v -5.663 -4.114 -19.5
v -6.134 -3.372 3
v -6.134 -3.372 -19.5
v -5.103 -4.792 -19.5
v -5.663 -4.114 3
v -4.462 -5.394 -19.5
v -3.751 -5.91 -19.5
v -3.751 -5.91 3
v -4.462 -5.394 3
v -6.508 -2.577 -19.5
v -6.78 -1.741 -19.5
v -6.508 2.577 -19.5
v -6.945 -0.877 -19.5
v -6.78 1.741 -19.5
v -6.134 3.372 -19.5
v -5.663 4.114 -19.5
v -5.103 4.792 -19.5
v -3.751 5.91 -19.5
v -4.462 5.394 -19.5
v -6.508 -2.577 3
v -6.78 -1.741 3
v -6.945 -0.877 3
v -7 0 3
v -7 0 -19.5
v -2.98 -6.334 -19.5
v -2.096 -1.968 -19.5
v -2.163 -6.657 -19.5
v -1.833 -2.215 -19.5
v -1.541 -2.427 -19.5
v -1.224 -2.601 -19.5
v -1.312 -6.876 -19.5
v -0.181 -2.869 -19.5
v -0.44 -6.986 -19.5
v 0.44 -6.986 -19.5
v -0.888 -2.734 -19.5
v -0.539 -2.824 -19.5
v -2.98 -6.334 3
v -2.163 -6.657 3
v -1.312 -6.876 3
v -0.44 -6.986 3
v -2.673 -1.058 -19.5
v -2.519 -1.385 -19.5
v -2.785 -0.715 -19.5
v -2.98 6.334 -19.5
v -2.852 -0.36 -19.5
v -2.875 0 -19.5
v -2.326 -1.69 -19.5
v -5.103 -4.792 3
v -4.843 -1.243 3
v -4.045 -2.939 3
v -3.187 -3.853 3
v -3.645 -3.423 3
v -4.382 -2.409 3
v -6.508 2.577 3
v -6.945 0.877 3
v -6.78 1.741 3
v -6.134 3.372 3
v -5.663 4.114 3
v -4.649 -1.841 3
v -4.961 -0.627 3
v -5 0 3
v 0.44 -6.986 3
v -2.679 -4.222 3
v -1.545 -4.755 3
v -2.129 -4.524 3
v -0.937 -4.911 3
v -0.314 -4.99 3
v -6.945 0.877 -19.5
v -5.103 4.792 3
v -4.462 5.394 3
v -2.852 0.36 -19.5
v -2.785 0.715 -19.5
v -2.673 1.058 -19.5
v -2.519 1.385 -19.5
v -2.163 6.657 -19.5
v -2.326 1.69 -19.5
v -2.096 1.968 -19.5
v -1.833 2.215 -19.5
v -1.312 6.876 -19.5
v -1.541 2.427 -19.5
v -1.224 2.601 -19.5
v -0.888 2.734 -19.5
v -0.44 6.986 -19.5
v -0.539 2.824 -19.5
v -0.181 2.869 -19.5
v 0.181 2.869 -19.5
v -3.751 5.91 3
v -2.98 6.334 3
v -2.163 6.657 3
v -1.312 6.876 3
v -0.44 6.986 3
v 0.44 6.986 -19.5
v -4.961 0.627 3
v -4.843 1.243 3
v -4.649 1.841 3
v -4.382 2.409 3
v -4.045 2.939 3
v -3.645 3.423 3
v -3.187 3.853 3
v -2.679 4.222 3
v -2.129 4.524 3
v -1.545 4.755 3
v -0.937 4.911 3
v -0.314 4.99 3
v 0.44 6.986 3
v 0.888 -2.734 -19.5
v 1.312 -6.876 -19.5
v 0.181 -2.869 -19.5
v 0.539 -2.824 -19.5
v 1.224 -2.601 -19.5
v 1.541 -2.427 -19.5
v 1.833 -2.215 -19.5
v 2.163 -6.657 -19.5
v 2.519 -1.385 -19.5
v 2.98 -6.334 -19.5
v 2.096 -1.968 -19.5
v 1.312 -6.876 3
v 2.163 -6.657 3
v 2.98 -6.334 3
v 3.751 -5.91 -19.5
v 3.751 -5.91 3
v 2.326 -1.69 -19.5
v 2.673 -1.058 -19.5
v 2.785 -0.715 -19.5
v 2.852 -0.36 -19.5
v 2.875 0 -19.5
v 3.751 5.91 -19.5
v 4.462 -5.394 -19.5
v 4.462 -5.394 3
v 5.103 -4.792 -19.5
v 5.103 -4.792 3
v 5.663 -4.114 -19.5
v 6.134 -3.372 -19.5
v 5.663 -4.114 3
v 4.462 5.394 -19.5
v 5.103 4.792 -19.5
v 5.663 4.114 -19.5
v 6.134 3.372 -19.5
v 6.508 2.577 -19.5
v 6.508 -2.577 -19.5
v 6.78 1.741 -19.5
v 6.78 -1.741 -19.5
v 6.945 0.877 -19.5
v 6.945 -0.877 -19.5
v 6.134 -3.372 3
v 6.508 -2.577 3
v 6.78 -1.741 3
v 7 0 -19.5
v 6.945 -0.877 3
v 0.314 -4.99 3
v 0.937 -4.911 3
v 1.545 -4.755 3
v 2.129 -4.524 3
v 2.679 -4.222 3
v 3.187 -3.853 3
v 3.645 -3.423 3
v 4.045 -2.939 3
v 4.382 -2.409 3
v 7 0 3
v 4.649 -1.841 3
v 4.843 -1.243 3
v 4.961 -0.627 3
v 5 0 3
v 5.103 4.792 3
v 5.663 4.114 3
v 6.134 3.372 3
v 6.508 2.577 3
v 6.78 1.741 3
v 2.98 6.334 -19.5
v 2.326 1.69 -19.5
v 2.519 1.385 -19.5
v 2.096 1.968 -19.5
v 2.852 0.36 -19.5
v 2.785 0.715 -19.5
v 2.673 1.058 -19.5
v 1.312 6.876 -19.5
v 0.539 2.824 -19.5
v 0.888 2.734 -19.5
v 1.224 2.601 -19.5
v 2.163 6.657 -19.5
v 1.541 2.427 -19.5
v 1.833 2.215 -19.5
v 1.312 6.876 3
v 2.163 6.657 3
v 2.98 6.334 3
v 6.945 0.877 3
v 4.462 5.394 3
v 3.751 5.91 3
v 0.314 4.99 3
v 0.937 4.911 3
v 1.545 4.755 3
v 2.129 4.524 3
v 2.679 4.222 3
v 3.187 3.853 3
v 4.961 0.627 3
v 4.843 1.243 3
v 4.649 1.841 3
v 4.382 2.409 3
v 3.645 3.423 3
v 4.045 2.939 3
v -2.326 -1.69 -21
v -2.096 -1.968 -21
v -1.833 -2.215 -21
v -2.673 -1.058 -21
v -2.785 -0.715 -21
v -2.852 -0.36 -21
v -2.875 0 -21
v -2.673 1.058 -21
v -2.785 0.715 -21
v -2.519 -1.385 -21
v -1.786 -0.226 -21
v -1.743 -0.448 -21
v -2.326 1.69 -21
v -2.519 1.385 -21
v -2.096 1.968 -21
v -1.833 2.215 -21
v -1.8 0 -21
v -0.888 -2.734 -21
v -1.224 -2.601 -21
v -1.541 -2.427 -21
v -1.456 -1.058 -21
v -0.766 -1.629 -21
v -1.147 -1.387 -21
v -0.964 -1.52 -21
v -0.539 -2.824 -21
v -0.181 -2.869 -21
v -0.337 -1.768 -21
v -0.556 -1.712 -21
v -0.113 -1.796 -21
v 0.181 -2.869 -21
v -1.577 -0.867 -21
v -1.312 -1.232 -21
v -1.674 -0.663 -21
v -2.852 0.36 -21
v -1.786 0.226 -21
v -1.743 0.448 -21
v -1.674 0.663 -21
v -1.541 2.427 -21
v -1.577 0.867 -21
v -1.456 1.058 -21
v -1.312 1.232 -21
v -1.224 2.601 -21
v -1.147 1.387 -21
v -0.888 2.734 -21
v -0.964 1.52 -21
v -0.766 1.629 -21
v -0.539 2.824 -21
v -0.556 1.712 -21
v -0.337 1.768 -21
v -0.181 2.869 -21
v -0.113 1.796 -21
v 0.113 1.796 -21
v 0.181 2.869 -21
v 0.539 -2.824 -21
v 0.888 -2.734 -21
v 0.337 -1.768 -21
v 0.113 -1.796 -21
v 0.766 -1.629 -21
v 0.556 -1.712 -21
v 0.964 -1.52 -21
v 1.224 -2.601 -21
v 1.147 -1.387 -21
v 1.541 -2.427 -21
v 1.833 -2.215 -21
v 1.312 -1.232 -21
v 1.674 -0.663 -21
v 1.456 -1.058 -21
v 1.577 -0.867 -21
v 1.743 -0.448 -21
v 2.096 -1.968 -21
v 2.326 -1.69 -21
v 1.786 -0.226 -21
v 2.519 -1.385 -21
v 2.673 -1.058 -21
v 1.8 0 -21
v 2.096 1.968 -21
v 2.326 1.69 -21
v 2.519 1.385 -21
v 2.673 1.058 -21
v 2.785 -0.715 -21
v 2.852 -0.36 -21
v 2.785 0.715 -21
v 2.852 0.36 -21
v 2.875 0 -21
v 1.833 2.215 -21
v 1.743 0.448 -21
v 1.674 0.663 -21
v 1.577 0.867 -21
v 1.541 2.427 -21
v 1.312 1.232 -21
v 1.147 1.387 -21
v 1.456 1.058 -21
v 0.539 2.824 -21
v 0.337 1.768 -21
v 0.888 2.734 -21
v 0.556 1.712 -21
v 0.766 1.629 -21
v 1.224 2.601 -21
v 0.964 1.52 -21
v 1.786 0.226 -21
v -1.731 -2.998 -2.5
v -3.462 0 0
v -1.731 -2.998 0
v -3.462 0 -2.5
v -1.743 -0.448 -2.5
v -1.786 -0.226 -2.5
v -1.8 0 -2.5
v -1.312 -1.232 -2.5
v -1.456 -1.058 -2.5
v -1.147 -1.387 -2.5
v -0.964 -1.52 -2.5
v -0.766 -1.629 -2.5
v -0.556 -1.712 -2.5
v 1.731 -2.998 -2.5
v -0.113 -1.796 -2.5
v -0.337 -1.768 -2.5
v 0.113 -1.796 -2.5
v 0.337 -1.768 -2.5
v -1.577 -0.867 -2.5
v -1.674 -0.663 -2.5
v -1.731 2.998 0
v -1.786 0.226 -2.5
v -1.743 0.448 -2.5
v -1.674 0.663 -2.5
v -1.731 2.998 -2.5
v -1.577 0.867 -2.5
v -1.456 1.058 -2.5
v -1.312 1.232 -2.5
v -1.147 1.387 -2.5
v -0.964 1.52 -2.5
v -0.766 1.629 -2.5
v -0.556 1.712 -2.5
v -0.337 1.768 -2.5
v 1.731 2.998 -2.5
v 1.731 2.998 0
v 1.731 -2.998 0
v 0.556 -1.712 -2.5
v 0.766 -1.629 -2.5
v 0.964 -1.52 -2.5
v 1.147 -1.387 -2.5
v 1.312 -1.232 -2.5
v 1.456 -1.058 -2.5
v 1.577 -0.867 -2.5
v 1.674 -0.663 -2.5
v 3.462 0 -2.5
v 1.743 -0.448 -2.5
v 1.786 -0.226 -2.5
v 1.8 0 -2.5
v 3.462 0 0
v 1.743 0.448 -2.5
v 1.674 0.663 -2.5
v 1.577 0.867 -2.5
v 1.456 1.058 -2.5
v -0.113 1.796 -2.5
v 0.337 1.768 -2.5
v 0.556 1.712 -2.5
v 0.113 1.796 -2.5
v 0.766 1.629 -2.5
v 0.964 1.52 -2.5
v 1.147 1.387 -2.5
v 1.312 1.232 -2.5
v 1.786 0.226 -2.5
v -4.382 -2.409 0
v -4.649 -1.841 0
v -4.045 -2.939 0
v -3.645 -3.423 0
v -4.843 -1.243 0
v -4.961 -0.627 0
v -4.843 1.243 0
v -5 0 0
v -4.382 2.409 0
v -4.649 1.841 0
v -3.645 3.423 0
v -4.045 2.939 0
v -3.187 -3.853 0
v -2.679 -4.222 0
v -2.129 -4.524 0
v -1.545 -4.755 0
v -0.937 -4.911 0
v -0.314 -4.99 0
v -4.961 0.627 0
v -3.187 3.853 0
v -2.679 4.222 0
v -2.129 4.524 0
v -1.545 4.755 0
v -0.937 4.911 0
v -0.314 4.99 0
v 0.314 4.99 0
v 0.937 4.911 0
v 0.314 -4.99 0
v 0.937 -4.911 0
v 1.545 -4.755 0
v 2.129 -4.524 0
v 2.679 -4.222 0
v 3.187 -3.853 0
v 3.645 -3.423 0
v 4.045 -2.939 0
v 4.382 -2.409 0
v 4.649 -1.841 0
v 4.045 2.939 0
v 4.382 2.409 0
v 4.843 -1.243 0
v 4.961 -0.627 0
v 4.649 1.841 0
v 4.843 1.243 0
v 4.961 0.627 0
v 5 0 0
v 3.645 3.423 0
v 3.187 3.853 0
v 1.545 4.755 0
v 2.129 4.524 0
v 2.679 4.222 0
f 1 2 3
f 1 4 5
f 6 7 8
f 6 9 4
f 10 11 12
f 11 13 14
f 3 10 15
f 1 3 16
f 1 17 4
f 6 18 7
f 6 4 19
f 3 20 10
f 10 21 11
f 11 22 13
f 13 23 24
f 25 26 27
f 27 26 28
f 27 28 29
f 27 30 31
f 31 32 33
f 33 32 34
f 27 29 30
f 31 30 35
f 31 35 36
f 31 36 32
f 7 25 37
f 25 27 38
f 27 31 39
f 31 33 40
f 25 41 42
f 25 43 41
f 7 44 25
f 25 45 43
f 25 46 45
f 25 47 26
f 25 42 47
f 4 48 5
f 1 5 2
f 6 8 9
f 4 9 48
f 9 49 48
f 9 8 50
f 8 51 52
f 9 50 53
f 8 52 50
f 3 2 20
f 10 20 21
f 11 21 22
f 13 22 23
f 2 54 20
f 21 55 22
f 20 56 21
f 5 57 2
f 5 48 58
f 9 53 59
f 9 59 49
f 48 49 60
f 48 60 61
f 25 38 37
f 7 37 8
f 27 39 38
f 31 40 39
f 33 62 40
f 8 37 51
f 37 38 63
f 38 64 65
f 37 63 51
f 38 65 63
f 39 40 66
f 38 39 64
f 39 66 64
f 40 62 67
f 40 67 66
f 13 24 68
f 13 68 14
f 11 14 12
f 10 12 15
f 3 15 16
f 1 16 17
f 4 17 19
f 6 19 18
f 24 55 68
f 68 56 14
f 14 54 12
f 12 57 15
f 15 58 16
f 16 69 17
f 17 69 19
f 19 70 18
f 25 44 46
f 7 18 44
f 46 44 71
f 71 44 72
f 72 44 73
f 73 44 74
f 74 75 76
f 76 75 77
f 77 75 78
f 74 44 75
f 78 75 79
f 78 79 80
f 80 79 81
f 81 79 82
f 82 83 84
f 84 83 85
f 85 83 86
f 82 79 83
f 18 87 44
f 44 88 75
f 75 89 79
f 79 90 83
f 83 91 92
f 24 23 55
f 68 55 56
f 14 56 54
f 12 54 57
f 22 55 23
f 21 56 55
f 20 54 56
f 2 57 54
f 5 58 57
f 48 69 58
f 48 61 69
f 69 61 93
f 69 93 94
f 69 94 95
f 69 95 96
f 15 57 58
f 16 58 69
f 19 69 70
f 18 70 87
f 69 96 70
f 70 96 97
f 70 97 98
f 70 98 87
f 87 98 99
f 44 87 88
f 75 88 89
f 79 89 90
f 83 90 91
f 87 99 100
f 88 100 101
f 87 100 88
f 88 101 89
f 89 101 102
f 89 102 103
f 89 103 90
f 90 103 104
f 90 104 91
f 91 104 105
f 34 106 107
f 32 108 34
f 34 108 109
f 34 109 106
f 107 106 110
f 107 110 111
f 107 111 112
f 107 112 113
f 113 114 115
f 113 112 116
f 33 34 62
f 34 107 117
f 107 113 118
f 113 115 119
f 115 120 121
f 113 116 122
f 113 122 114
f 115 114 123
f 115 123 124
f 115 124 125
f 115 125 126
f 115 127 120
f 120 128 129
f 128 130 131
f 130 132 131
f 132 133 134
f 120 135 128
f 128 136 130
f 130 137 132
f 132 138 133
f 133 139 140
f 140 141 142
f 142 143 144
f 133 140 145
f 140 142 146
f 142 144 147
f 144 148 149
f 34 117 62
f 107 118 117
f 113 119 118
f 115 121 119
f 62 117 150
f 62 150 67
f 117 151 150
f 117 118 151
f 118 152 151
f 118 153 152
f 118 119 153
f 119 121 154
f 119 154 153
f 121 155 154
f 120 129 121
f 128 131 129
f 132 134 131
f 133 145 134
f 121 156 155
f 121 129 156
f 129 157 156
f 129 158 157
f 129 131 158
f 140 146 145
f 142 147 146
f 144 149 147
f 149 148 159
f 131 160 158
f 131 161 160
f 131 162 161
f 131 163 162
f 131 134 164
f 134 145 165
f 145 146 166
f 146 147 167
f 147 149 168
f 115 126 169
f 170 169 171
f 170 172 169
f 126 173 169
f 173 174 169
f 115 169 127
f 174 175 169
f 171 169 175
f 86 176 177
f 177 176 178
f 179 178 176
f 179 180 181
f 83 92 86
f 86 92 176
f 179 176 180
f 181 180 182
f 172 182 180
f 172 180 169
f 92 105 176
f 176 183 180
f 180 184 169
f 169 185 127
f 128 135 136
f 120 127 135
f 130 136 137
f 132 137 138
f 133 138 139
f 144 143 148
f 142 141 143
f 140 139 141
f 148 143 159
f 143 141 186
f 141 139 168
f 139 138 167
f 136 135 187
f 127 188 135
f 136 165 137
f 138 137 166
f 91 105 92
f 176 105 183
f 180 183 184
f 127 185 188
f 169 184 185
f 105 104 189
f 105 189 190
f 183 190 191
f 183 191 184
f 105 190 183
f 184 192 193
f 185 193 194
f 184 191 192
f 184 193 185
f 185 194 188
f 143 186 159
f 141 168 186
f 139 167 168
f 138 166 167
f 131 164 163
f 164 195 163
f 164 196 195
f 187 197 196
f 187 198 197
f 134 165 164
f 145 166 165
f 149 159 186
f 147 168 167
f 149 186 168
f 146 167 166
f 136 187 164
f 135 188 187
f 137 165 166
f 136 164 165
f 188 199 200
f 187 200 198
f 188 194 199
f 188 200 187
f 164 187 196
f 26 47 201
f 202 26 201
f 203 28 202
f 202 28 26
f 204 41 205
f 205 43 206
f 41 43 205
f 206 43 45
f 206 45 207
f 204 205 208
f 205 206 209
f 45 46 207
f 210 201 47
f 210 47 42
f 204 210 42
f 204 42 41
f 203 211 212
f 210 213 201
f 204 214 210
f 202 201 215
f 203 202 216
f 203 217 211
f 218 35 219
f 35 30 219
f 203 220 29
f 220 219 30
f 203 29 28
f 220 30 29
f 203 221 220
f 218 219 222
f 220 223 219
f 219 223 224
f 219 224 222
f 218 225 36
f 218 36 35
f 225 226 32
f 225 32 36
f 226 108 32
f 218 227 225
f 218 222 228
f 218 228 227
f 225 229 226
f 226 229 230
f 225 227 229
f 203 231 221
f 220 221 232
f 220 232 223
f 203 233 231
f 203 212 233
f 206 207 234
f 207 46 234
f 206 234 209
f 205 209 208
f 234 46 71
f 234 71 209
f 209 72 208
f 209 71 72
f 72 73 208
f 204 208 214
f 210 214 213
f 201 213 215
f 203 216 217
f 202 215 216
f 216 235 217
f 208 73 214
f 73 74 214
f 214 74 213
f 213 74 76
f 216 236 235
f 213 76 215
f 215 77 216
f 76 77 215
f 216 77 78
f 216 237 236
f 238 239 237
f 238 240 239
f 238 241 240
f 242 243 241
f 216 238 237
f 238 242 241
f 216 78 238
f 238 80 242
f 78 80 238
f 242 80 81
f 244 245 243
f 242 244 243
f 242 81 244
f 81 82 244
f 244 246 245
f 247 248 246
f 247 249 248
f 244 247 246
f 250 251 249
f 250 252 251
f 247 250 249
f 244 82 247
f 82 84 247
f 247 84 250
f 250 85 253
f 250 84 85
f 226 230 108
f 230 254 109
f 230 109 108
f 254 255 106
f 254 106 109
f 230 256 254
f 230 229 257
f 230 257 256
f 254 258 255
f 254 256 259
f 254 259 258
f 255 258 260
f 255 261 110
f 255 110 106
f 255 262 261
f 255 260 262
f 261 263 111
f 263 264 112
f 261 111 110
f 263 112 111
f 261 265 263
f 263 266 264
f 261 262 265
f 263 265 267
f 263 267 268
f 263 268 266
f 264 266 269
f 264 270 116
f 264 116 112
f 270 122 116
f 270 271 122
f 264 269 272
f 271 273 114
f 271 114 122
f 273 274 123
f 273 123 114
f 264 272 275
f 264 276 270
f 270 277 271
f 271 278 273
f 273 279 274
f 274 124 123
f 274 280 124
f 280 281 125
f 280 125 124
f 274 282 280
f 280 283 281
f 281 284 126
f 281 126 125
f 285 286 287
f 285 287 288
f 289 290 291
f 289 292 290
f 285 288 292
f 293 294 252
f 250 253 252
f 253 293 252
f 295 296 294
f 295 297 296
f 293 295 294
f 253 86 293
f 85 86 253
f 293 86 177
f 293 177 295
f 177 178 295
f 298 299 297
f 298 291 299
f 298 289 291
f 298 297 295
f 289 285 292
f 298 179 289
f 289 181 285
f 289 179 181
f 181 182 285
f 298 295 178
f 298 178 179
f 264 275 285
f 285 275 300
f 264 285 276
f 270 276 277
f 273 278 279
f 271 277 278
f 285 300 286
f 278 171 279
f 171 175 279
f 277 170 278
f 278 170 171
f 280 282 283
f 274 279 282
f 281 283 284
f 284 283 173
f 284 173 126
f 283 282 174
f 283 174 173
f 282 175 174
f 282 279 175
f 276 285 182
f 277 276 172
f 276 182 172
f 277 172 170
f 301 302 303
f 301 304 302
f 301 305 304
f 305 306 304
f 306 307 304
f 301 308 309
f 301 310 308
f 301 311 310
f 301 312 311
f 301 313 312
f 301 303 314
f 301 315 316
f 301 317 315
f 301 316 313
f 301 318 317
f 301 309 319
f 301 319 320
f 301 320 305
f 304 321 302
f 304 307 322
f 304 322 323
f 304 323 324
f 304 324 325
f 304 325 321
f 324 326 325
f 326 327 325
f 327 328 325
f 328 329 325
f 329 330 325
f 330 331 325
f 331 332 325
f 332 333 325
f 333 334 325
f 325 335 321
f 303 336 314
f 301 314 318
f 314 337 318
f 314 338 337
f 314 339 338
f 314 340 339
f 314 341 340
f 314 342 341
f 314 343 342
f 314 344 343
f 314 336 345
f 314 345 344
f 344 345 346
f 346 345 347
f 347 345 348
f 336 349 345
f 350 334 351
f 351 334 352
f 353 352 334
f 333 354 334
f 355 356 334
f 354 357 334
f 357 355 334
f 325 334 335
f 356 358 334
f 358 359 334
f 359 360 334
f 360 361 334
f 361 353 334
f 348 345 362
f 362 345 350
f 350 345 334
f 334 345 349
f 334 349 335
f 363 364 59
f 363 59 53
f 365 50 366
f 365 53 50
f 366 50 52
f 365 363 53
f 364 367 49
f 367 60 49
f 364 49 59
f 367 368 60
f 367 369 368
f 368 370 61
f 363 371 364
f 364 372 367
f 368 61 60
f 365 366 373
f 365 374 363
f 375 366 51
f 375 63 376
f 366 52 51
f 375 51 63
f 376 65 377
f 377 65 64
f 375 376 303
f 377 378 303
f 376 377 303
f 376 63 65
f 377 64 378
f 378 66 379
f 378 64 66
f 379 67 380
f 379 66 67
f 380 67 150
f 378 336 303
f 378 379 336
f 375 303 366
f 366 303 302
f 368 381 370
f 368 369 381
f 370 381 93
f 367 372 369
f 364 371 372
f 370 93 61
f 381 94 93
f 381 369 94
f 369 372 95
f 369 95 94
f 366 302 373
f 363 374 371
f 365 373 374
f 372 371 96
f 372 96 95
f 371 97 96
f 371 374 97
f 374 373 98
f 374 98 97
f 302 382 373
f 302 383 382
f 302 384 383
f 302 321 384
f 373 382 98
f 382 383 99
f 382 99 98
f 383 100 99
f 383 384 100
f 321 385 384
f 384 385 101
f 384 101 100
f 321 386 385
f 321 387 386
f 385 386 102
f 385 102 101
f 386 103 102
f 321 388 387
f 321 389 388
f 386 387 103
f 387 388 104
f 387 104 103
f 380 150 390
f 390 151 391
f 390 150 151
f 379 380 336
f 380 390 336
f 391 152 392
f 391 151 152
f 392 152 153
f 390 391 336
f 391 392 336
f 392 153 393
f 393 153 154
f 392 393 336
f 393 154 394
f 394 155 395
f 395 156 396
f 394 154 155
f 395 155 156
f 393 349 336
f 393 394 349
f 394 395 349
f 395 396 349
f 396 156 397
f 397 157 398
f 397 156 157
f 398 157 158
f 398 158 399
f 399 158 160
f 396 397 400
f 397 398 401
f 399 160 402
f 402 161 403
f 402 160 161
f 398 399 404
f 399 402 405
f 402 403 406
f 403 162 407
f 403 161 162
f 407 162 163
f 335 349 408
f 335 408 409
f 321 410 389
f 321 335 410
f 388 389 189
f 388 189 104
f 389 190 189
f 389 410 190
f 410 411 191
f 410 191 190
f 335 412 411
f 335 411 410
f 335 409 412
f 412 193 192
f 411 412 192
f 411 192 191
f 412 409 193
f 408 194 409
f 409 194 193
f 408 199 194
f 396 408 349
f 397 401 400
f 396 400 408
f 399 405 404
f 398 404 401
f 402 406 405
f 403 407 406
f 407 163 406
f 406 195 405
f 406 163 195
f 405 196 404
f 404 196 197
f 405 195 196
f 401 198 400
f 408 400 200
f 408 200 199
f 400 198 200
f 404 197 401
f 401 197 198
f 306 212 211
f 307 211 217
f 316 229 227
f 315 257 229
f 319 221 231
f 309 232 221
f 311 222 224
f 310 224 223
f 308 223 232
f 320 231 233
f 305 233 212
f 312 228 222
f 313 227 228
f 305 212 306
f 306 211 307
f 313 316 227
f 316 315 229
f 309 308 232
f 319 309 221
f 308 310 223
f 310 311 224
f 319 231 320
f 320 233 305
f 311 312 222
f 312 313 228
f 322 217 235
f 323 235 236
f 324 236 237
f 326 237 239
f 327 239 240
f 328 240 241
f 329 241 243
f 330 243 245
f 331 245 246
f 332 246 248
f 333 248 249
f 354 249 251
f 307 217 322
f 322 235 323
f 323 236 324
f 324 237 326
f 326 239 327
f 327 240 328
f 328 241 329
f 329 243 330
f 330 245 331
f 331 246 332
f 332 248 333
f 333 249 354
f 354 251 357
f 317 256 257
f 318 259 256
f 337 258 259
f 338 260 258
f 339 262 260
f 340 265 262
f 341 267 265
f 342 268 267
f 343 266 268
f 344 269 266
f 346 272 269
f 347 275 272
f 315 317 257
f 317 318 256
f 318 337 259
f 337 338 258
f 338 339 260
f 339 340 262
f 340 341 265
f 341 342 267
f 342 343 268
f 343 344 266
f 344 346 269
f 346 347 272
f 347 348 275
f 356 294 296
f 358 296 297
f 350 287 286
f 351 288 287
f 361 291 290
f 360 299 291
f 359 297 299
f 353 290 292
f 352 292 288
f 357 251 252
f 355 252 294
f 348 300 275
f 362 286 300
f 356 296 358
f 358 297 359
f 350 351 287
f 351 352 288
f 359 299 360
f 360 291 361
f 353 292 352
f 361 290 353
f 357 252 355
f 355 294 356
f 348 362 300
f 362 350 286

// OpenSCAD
$fn = 50;


difference() {
	union() {
		translate(v = [0, 0, -19.5000000000]) {
			cylinder(h = 22.5000000000, r = 7.0000000000);
		}
		#translate(v = [0, 0, -21.0000000000]) {
			cylinder(h = 21, r = 2.8750000000);
		}
	}
	union() {
		translate(v = [0, 0, 0]) {
			rotate(a = [0, 0, 0]) {
				difference() {
					union() {
						translate(v = [0, 0, -2.5000000000]) {
							linear_extrude(height = 2.5000000000) {
								polygon(points = [[3.4620000000, 0.0000000000], [1.7310000000, 2.9981799479], [-1.7310000000, 2.9981799479], [-3.4620000000, 0.0000000000], [-1.7310000000, -2.9981799479], [1.7310000000, -2.9981799479]]);
							}
						}
					}
					union();
				}
			}
		}
		#cylinder(h = 3, r = 5.0000000000);
		#translate(v = [0, 0, -100.0000000000]) {
			cylinder(h = 200, r = 1.8000000000);
		}
	}
}
